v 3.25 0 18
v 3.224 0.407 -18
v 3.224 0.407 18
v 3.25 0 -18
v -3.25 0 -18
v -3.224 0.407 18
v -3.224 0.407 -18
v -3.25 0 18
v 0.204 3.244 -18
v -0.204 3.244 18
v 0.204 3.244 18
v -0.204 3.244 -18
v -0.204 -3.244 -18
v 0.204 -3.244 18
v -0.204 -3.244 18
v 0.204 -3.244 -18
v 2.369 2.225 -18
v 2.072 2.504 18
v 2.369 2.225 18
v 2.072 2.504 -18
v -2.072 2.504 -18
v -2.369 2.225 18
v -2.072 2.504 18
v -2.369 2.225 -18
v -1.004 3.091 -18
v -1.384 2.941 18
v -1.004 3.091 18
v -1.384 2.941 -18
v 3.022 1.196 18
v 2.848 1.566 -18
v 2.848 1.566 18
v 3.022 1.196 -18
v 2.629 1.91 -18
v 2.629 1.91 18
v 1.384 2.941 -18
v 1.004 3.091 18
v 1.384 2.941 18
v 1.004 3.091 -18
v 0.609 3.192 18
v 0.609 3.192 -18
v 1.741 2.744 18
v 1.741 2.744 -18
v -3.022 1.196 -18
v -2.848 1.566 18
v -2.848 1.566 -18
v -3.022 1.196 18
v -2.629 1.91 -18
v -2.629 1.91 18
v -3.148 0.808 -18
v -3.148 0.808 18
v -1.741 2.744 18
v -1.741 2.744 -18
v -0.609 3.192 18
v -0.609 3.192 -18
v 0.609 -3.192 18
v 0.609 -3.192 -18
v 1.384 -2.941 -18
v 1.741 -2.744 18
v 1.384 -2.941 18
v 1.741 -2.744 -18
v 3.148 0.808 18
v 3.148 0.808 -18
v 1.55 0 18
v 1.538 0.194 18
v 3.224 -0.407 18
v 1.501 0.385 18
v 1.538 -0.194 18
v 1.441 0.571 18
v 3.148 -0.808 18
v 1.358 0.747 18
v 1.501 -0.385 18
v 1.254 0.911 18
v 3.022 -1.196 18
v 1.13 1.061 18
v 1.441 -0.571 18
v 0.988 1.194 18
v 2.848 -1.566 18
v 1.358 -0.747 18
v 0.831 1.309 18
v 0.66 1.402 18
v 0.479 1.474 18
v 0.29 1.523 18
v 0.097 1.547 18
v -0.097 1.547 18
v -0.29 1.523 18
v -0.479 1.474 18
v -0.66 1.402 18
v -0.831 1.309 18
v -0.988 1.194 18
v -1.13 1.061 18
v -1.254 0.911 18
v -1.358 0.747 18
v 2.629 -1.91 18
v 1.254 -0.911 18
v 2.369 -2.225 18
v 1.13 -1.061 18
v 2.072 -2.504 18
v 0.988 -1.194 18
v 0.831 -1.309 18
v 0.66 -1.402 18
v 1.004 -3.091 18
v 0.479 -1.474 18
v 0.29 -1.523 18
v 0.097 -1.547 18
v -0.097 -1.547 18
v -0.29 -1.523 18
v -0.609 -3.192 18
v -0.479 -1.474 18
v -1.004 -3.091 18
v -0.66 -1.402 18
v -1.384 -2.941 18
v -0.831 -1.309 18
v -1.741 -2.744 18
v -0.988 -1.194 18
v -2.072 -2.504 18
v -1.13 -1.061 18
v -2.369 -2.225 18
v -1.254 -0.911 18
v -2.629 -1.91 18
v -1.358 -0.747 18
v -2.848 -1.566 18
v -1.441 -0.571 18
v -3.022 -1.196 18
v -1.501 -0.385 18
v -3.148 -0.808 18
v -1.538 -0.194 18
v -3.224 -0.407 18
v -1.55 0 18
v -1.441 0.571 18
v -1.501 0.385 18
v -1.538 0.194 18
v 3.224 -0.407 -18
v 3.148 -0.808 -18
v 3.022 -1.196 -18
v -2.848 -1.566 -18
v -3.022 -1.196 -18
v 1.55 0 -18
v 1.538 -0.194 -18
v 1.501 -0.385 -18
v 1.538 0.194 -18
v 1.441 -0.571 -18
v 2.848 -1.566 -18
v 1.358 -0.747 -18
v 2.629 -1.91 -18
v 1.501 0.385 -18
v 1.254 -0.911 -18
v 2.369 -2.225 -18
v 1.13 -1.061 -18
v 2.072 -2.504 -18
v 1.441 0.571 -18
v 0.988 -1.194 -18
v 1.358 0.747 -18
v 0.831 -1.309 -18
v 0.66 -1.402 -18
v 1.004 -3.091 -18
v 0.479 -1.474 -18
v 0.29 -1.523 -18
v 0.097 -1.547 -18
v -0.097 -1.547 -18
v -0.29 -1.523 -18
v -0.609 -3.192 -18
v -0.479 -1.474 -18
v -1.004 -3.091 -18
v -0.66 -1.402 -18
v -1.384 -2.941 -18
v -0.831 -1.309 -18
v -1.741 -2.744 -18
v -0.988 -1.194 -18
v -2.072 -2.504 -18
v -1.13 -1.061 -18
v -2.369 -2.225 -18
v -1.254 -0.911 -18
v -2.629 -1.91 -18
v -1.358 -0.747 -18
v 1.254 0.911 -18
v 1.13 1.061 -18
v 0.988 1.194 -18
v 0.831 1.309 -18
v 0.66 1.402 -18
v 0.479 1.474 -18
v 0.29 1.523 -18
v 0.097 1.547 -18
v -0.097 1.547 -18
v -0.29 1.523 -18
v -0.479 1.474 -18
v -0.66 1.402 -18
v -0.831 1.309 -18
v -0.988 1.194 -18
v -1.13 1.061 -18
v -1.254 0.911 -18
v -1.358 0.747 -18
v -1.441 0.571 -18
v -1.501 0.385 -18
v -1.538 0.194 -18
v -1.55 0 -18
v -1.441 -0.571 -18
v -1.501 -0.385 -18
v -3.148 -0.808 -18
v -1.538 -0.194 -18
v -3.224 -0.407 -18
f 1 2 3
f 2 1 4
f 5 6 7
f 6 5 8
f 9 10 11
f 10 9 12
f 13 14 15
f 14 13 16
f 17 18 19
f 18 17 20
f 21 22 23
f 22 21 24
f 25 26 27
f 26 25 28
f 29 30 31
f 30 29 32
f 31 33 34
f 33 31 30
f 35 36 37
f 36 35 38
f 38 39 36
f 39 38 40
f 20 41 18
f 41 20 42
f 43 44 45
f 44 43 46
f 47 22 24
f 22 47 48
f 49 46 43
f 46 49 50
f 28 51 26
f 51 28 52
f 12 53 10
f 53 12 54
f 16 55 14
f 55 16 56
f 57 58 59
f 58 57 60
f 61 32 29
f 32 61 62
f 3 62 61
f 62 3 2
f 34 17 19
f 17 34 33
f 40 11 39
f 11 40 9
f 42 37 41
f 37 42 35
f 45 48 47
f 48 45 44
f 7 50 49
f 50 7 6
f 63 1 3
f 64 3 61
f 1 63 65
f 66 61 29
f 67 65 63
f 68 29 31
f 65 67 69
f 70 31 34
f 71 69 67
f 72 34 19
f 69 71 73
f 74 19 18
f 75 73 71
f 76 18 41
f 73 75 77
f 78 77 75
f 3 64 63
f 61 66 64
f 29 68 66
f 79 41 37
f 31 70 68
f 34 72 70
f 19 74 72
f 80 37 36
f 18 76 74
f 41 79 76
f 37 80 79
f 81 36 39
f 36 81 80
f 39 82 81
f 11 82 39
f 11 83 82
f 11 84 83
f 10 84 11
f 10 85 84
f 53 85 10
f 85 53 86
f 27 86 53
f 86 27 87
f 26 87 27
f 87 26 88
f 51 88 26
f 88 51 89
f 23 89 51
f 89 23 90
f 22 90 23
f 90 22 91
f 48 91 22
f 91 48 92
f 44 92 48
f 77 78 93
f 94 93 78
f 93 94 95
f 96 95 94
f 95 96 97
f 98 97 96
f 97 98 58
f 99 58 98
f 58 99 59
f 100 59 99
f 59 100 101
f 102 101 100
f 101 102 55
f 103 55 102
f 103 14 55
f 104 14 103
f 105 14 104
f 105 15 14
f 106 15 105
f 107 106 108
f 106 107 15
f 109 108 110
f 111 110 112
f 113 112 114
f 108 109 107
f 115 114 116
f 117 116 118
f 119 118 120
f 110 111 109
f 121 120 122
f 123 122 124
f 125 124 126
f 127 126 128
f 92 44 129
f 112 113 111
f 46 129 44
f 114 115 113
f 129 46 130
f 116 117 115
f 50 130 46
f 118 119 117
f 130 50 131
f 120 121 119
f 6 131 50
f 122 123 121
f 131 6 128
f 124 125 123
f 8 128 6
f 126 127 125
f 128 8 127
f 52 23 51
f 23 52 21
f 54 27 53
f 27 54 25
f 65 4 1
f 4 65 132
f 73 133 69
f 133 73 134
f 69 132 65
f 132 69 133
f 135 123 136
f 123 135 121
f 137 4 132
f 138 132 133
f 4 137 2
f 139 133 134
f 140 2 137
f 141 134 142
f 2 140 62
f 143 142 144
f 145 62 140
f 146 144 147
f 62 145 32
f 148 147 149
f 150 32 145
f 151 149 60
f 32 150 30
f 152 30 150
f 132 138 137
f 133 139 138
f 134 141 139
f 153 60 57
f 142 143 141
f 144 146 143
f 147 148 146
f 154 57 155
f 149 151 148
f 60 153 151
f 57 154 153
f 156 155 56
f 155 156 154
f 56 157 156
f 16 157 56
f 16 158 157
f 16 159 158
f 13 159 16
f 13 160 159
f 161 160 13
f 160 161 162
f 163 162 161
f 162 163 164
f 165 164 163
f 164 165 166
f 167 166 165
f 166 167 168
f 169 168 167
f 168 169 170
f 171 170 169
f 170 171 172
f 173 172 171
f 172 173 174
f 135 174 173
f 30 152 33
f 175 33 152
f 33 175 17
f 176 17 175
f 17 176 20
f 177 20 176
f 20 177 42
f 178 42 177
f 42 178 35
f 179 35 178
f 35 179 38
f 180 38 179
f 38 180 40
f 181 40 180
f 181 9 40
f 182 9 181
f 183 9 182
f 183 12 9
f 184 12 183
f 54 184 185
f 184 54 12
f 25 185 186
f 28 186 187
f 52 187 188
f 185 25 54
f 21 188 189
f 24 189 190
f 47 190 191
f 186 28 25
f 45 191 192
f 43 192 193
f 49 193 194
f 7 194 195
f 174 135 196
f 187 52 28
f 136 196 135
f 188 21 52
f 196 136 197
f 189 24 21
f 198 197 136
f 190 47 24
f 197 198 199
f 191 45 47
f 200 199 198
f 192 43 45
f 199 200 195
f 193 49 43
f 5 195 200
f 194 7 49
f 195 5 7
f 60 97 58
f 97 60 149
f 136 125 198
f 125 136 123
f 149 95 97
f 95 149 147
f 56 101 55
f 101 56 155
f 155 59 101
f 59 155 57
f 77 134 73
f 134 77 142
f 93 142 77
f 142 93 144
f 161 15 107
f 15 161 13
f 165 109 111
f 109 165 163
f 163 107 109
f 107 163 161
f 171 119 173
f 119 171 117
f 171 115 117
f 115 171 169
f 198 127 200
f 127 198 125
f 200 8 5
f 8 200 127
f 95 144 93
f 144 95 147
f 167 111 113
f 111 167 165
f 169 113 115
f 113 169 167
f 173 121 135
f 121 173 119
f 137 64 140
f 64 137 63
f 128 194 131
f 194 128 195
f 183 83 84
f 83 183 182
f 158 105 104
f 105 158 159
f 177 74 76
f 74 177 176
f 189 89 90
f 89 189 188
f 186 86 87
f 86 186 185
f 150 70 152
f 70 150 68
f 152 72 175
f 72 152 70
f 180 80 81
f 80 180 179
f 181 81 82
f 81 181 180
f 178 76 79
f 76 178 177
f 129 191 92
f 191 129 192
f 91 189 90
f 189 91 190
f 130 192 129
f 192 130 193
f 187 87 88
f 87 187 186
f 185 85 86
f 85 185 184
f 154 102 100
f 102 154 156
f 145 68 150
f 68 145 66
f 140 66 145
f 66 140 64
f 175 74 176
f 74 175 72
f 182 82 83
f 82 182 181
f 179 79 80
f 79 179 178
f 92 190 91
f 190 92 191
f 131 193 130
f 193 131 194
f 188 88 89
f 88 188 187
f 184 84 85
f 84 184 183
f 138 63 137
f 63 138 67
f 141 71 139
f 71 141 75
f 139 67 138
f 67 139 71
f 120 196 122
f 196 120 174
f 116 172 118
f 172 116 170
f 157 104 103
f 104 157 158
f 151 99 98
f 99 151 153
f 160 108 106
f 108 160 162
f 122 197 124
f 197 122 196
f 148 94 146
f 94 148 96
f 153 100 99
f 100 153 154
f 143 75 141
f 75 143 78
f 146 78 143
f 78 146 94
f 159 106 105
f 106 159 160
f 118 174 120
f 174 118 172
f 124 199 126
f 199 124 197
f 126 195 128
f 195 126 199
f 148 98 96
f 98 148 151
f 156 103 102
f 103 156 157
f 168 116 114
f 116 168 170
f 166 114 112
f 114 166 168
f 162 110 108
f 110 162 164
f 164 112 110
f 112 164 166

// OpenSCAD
$fn = 50;


difference() {
	union() {
		translate(v = [0, 0, -18.0000000000]) {
			cylinder(h = 36, r = 3.2500000000);
		}
	}
	union() {
		translate(v = [0, 0, -100.0000000000]) {
			cylinder(h = 200, r = 1.5500000000);
		}
	}
}
